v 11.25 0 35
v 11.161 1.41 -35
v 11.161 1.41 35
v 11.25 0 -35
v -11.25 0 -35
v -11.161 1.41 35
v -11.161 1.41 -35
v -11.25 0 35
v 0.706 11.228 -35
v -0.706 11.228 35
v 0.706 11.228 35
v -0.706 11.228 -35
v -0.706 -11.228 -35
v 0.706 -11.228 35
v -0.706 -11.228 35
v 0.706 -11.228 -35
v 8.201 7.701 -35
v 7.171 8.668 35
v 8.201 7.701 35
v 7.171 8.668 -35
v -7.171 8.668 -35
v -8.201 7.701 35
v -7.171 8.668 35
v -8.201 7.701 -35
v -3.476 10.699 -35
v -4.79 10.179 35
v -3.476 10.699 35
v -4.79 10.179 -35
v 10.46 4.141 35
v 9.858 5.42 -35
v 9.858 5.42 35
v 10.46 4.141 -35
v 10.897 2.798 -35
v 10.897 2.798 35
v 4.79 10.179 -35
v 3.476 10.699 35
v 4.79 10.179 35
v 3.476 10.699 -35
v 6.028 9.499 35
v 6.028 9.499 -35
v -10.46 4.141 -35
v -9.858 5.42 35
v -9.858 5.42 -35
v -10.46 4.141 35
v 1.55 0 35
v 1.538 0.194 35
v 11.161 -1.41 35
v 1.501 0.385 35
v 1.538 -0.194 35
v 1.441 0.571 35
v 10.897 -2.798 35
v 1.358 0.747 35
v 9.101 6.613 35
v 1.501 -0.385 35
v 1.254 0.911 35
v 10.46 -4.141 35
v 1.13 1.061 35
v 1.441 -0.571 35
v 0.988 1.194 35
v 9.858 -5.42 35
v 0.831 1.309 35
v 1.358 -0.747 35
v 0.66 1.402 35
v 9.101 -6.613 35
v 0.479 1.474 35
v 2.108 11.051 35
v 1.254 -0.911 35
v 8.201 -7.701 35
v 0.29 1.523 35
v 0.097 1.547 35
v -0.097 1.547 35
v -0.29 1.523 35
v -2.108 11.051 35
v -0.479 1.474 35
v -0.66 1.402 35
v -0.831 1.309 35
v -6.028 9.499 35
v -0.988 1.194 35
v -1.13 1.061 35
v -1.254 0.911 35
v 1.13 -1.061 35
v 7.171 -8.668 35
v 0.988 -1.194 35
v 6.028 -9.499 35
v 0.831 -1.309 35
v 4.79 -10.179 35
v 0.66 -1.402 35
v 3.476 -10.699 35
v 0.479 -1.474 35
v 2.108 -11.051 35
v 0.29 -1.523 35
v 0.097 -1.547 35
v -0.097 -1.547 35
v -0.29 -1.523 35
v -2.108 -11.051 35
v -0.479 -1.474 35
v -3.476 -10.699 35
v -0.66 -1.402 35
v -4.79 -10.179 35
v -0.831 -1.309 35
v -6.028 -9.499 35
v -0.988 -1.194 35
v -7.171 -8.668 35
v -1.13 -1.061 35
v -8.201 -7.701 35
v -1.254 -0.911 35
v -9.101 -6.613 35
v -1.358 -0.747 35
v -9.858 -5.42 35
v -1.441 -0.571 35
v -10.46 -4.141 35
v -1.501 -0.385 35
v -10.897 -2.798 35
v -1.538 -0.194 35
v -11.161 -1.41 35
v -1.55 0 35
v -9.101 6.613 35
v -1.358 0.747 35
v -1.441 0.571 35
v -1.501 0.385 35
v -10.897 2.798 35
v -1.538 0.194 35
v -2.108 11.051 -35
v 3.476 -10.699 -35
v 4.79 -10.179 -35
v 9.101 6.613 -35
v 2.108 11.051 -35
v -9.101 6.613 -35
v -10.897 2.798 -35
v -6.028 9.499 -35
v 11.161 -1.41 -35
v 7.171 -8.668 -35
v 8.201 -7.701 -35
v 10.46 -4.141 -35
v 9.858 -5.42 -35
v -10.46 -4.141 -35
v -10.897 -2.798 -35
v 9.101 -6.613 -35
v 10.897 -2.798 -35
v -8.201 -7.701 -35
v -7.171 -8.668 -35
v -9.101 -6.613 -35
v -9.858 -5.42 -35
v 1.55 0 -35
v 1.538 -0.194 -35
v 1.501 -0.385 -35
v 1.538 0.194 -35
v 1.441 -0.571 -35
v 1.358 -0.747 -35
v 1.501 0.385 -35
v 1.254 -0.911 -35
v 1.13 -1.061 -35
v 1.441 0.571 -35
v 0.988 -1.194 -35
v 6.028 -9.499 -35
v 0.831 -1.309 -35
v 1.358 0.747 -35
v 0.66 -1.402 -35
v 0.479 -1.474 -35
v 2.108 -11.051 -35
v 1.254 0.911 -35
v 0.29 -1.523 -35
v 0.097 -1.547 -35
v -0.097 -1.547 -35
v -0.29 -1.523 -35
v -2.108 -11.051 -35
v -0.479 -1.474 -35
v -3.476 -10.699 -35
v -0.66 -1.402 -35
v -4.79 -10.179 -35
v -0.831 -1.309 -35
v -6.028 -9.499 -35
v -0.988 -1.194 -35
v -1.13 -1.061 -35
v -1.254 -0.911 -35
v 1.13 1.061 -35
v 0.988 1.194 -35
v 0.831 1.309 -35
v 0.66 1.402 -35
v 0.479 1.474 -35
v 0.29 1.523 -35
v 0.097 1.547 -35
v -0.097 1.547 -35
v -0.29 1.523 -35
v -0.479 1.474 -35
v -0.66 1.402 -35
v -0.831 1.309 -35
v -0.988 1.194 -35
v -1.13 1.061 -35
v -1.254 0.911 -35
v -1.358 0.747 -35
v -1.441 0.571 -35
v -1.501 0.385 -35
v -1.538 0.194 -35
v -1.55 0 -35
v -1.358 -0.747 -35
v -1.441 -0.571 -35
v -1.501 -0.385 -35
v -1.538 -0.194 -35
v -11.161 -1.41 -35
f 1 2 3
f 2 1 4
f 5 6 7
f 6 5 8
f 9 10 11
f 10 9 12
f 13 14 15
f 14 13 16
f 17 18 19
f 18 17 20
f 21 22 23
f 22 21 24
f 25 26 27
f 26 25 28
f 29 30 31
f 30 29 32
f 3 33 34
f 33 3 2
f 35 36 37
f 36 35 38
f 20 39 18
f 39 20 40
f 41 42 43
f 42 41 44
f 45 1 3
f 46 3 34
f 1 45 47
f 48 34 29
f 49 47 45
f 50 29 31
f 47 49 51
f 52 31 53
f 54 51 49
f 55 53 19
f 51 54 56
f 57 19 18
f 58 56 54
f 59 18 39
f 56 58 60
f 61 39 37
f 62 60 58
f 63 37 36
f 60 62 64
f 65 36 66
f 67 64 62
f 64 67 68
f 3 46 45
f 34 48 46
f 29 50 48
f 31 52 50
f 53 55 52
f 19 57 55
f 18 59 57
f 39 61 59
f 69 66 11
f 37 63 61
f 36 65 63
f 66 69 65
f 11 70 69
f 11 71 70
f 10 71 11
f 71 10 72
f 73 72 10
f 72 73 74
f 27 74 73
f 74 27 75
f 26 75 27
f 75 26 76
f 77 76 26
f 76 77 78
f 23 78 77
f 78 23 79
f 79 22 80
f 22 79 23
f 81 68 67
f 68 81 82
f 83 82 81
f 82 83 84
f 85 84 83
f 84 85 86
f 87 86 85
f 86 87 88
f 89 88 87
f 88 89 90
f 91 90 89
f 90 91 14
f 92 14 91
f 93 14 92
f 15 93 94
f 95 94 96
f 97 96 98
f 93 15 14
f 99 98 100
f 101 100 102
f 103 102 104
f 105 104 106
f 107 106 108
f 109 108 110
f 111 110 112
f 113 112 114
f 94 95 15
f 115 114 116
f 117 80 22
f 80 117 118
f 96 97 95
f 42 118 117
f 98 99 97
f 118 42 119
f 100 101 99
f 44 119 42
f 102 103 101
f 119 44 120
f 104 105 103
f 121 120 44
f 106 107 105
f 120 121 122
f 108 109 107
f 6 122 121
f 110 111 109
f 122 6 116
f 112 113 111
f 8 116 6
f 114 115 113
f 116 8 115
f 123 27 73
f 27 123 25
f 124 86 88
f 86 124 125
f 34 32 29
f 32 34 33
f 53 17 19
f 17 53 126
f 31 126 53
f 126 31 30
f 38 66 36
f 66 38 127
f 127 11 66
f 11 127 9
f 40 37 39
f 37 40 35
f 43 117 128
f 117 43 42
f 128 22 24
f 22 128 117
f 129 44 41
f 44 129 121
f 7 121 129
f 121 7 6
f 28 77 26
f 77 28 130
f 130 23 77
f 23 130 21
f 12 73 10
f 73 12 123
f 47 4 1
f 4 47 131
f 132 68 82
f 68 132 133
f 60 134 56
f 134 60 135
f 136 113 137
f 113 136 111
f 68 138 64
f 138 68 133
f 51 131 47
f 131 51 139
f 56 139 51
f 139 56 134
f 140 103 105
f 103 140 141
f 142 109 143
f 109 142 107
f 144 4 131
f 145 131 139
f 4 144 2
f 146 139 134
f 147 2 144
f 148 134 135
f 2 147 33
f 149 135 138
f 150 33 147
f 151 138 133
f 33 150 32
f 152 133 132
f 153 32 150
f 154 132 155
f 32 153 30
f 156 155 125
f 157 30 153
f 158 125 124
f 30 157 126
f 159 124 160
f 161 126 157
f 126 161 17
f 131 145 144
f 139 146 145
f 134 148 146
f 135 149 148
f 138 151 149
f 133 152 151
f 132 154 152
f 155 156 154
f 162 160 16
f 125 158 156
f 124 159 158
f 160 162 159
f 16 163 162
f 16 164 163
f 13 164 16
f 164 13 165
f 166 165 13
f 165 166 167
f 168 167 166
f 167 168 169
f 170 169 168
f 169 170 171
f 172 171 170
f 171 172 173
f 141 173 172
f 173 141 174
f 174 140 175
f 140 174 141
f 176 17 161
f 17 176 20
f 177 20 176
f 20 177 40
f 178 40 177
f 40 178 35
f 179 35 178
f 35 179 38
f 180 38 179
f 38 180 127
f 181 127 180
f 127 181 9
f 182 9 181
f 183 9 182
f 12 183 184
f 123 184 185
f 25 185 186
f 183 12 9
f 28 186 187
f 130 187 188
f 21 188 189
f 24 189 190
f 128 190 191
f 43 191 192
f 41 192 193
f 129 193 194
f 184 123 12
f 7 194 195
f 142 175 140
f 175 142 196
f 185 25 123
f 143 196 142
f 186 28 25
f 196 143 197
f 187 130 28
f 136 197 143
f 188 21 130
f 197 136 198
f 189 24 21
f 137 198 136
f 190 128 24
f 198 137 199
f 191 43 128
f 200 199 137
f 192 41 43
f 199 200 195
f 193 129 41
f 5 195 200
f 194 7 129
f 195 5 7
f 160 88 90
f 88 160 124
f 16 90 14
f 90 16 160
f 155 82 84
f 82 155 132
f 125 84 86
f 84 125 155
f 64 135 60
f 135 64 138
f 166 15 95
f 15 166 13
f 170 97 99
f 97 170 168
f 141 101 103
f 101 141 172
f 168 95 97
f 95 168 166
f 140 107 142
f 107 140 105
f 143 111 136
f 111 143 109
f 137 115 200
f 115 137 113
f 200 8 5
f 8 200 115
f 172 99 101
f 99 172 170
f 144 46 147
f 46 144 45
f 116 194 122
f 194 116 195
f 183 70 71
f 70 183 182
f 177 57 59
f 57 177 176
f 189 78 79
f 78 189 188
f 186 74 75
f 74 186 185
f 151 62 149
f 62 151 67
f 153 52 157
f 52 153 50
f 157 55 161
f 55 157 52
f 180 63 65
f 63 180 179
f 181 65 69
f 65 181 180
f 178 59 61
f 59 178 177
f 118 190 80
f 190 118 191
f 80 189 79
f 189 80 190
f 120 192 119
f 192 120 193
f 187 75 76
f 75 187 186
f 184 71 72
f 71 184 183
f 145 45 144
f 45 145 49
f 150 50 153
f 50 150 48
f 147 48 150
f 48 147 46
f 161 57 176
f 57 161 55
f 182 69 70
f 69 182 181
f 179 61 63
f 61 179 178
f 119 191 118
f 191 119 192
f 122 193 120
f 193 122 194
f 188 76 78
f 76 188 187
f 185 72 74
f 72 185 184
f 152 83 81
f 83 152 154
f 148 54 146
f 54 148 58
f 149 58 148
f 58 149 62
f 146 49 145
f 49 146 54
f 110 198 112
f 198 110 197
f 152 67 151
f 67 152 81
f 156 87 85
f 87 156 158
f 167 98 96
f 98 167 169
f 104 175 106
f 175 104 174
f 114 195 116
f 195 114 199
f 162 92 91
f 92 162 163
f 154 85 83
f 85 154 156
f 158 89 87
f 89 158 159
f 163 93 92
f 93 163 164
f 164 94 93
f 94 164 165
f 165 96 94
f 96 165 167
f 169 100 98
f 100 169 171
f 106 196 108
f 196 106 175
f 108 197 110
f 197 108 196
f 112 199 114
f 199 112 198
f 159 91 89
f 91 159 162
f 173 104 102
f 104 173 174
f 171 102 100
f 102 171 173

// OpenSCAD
$fn = 50;


difference() {
	union() {
		translate(v = [0, 0, -35.0000000000]) {
			cylinder(h = 70, r = 11.2500000000);
		}
	}
	union() {
		translate(v = [0, 0, -100.0000000000]) {
			cylinder(h = 200, r = 1.5500000000);
		}
	}
}
